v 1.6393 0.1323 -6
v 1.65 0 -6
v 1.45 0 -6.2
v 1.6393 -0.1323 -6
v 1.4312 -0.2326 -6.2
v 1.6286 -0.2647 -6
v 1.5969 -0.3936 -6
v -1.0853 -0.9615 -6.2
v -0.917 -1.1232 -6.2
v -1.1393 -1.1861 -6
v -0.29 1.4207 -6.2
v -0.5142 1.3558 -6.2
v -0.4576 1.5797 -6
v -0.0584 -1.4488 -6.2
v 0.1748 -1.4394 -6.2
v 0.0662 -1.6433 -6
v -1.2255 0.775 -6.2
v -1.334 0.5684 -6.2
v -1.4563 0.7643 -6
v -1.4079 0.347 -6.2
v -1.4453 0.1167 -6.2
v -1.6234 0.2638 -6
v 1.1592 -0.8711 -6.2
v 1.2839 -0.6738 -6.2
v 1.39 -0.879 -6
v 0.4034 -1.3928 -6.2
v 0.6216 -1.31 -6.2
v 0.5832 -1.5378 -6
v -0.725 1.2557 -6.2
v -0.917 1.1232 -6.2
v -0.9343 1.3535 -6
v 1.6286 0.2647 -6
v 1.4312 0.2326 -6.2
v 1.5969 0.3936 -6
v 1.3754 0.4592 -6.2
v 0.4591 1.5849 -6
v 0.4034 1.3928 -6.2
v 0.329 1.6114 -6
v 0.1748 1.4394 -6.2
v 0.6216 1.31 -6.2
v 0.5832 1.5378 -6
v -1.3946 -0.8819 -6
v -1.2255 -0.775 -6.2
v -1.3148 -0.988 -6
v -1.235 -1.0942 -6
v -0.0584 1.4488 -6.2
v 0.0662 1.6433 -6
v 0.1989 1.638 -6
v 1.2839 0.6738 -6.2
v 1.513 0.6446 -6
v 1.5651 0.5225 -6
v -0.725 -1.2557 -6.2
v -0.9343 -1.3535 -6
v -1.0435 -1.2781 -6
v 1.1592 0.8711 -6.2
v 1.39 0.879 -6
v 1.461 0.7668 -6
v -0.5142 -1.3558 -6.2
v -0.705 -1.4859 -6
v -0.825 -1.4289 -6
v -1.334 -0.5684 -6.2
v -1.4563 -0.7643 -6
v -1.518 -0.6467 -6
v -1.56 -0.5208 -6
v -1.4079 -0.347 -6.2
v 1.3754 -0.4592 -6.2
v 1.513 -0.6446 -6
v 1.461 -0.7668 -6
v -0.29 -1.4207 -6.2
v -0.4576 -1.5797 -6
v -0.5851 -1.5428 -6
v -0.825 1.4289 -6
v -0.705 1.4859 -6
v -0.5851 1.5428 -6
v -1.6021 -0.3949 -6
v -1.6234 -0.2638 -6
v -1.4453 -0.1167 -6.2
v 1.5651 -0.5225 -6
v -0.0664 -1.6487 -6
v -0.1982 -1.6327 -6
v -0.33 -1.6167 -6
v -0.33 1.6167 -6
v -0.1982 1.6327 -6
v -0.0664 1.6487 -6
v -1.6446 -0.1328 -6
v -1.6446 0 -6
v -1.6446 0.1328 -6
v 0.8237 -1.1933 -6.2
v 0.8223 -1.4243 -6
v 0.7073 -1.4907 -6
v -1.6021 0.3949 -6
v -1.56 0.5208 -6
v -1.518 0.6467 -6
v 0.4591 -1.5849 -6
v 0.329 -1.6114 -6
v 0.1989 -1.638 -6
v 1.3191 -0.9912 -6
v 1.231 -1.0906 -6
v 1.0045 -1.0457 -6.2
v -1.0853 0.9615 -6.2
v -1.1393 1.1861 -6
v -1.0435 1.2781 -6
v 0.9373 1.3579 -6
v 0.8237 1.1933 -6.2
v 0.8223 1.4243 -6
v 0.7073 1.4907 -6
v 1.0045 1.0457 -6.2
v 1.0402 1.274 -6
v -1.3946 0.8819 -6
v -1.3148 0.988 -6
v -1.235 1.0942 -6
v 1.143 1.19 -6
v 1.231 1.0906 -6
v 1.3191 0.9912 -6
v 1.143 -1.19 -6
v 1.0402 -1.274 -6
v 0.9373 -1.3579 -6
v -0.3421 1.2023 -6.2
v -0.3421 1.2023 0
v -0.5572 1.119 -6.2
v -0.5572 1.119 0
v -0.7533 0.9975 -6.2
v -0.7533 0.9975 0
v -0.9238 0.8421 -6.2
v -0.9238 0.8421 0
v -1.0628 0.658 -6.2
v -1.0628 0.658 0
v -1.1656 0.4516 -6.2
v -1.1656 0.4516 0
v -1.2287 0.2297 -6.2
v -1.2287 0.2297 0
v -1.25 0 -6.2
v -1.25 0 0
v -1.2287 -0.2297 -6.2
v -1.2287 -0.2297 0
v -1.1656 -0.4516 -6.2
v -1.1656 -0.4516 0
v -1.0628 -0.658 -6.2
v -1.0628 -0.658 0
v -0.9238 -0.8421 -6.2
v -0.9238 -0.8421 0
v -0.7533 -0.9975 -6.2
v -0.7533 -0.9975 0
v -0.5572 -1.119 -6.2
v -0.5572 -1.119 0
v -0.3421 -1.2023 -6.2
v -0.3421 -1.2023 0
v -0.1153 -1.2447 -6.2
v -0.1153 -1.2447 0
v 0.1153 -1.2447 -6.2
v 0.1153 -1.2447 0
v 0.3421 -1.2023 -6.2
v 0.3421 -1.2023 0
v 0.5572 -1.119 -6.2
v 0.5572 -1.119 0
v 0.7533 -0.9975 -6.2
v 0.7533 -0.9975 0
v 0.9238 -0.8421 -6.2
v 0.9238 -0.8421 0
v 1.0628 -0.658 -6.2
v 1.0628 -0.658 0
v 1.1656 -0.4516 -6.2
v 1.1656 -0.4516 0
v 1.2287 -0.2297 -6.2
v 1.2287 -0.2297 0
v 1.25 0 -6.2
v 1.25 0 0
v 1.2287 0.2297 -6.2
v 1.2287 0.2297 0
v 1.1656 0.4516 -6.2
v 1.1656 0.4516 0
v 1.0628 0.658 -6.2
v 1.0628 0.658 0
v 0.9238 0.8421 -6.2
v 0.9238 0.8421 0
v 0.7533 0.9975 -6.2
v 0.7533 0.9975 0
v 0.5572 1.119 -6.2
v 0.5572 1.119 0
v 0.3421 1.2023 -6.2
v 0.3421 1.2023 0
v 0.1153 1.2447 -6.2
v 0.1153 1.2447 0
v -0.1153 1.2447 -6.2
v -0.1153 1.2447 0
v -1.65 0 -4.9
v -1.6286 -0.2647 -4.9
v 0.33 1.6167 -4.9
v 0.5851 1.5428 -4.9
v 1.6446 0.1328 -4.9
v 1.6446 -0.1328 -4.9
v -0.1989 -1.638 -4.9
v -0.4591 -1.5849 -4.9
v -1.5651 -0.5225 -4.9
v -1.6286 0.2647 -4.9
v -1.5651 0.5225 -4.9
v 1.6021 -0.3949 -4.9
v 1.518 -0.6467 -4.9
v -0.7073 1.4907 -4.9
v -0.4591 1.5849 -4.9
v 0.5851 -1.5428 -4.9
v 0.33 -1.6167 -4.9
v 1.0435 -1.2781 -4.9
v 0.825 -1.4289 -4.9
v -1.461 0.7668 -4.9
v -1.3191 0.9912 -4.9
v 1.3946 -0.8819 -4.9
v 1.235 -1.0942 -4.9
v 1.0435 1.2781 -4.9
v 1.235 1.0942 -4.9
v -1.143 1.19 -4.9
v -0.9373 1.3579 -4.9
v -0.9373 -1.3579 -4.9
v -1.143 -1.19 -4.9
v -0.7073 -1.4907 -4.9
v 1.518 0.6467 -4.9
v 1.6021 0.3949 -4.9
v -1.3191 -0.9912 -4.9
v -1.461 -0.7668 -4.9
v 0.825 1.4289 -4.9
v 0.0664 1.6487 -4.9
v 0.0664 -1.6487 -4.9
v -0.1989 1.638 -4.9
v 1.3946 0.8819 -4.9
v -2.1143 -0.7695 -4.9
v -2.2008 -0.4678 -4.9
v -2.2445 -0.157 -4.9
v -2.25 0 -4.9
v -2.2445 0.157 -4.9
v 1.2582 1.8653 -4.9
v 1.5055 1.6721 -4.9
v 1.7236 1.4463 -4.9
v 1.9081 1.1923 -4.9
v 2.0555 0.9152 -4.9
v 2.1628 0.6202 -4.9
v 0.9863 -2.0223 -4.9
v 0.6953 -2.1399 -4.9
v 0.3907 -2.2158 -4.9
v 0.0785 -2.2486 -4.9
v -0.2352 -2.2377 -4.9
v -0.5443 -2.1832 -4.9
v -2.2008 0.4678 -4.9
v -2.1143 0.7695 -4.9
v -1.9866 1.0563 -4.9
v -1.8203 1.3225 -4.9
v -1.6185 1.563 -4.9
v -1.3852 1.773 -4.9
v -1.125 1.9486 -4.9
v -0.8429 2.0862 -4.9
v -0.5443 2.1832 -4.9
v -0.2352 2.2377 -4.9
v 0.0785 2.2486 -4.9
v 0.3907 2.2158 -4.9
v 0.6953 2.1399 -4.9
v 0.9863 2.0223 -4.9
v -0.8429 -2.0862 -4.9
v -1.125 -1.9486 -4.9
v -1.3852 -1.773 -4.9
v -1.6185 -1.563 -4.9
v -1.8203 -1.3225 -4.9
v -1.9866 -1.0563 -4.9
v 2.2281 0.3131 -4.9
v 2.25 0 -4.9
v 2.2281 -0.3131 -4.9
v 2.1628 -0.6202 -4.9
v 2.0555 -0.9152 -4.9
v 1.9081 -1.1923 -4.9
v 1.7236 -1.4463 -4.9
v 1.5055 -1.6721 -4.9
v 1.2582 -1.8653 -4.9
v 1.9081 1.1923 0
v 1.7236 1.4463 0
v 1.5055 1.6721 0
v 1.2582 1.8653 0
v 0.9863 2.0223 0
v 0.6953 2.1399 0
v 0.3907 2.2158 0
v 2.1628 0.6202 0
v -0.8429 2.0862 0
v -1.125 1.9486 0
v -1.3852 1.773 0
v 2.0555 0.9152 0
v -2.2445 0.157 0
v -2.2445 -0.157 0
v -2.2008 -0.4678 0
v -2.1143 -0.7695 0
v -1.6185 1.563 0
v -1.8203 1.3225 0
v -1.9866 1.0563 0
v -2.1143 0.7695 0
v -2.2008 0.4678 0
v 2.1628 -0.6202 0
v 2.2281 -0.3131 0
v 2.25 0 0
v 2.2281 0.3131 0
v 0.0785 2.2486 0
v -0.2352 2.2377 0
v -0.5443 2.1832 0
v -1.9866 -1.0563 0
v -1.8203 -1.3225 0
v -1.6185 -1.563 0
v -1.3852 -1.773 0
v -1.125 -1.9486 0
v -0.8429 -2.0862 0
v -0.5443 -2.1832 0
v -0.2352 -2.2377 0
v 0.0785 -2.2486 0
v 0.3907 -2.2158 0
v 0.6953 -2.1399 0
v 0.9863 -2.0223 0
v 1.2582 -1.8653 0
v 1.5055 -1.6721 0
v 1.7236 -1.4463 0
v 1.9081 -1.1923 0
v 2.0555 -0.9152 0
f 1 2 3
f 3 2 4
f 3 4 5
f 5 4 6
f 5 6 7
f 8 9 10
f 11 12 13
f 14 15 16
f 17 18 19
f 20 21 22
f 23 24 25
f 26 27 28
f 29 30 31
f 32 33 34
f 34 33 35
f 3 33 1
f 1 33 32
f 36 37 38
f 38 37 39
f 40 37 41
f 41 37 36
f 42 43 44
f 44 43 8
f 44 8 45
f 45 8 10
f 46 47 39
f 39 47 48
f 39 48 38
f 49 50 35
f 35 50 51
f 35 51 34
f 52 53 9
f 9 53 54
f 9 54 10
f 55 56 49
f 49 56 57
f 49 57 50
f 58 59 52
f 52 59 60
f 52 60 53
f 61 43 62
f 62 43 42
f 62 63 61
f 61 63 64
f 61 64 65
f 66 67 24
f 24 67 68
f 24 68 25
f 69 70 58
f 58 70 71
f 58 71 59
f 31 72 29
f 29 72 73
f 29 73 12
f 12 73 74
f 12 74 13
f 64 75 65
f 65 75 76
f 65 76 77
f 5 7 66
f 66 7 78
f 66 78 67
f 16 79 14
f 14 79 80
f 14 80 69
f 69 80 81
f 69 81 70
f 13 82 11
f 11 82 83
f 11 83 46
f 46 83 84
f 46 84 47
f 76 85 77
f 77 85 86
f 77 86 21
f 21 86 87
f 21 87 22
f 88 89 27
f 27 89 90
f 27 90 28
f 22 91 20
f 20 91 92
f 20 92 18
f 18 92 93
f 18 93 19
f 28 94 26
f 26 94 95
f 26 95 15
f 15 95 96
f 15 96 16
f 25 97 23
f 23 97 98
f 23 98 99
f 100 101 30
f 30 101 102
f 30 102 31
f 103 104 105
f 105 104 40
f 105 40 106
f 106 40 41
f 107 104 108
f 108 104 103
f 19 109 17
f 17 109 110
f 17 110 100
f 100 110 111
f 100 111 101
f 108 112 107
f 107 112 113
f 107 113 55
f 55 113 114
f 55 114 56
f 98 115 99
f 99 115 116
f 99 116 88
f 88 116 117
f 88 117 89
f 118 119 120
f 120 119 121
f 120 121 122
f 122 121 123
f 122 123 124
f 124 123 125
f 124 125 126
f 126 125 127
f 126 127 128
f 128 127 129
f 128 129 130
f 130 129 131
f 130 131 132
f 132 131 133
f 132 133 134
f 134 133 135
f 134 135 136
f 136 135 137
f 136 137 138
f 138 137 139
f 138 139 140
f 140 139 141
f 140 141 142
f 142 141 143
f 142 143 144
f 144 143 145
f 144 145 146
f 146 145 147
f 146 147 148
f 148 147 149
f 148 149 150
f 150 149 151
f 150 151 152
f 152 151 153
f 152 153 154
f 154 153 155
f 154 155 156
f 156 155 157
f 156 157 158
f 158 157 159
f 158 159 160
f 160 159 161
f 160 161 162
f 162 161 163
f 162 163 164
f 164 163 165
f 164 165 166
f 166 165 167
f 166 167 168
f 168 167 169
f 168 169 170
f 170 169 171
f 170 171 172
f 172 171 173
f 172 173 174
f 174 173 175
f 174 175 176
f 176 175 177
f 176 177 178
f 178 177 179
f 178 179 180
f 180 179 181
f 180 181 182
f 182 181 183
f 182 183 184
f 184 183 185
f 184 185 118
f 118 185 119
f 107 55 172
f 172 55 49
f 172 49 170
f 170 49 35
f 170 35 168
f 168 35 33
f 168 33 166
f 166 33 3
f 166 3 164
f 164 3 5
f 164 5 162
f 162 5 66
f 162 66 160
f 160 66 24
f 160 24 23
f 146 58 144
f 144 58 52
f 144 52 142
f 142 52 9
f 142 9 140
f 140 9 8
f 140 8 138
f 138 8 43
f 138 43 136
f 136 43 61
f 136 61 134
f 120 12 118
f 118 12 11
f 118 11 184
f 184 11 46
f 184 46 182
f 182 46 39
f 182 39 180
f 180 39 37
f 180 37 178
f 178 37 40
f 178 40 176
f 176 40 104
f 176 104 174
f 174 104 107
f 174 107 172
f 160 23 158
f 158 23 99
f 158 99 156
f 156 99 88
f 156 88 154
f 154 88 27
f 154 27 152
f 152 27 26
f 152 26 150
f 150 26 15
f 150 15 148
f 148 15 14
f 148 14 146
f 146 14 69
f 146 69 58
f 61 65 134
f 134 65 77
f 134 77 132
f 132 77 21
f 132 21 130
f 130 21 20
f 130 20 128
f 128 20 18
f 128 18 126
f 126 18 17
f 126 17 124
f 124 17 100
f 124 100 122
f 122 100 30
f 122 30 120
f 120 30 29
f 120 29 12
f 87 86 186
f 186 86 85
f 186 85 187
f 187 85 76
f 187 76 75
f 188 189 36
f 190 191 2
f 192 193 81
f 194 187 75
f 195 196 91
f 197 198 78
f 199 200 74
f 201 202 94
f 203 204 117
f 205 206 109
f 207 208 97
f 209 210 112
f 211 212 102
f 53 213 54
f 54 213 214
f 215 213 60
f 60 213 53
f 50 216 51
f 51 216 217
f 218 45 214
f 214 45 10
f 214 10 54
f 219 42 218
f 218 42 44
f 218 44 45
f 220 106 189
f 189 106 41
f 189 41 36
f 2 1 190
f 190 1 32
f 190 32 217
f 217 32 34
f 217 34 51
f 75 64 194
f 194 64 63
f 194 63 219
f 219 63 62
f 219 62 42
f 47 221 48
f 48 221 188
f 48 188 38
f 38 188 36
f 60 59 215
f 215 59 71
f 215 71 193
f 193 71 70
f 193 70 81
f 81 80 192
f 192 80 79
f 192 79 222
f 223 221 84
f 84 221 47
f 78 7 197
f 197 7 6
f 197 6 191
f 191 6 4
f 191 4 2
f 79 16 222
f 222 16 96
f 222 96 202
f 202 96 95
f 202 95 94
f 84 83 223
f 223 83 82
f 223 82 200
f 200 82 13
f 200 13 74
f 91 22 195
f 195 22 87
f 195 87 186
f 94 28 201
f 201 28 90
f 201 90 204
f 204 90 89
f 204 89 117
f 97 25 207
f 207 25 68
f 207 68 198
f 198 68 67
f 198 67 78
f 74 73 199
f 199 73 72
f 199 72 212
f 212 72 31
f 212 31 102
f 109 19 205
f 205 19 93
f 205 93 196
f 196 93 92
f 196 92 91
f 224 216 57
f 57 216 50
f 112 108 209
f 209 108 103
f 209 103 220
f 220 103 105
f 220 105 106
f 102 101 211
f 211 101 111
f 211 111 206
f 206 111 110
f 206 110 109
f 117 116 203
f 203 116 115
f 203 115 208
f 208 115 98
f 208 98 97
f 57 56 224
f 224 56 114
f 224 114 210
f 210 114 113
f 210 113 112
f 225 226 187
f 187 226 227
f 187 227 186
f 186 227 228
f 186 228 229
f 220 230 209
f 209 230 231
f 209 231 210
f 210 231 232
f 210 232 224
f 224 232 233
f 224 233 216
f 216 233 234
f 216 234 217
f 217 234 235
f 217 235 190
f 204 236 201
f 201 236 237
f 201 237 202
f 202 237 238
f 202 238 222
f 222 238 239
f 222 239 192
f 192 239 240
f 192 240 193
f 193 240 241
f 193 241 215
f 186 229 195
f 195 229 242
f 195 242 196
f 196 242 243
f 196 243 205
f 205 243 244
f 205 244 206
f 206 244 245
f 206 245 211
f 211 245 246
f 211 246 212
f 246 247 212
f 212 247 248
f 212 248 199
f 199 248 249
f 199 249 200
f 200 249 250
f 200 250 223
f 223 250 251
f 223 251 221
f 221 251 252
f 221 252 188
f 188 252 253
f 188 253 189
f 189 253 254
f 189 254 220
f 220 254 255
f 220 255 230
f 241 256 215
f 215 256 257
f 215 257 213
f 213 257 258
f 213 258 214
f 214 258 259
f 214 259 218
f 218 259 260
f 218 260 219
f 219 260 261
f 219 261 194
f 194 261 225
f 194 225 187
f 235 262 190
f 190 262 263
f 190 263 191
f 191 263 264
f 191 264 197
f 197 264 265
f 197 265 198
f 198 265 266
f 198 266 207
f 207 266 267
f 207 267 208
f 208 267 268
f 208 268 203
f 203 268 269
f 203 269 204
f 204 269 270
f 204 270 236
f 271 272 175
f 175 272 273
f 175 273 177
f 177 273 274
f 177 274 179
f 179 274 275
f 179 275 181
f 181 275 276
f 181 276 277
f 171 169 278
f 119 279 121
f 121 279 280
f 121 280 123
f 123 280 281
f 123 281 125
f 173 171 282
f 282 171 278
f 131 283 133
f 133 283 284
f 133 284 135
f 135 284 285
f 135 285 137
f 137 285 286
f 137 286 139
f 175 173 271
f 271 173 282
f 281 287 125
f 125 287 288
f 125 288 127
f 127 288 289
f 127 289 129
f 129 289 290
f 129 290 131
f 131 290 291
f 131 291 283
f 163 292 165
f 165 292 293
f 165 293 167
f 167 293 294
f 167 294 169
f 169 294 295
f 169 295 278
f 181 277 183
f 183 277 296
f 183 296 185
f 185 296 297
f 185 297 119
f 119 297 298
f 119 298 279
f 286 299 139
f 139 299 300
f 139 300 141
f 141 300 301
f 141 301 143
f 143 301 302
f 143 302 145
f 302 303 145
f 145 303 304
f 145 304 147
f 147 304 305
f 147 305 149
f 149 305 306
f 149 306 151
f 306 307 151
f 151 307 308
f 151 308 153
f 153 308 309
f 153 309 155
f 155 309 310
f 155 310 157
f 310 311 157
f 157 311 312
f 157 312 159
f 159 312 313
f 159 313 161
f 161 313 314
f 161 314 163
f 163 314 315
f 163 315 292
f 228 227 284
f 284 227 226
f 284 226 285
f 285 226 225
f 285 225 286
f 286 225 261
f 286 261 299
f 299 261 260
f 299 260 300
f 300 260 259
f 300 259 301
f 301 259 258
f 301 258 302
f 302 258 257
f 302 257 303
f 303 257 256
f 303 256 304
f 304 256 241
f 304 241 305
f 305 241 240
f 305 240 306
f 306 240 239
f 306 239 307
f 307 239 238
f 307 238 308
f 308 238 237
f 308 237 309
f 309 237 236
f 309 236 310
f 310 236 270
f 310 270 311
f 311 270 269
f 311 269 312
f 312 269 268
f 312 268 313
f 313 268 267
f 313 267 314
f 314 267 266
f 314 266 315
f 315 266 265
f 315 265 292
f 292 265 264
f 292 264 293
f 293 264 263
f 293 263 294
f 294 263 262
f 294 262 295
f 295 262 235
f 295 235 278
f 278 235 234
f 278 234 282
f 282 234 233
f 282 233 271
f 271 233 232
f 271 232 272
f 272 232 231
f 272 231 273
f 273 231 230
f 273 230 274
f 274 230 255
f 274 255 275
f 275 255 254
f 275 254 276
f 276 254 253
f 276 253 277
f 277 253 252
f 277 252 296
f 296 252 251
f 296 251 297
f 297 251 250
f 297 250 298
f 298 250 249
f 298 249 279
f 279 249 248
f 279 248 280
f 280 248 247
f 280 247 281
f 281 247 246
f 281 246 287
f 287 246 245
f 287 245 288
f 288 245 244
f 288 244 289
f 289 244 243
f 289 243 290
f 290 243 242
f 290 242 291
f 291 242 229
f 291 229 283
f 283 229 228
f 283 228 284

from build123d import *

# Parameters (mm, degrees)
SKETCH1_R           = 2.25
BOSS_EXTRUDE1_DEPTH = 6.2
SKETCH2_OUTSIDE_W   = 8.276
SKETCH2_OUTSIDE_H   = 8.276
SKETCH2_OUTSIDE_R   = 1.65
CUT_EXTRUDE1_DEPTH  = 1.3
SKETCH3_R           = 1.25
CUT_EXTRUDE2_DEPTH  = 7.2
CHAMFER1_SIZE       = 0.2


with BuildPart() as part:
    # Sketch1 → Boss-Extrude1 (new body)
    with BuildSketch(Plane.XY):
        Circle(SKETCH1_R)
    extrude(amount=-BOSS_EXTRUDE1_DEPTH)

    # Sketch2 outside → Cut-Extrude1 (cut)
    with BuildSketch(Plane(origin=(0, 0, -6.2), x_dir=(-1, 0, 0), z_dir=(0, 0, -1))):
        Rectangle(SKETCH2_OUTSIDE_W, SKETCH2_OUTSIDE_H)
        Circle(SKETCH2_OUTSIDE_R, mode=Mode.SUBTRACT)
    extrude(amount=-CUT_EXTRUDE1_DEPTH, mode=Mode.SUBTRACT)

    # Sketch3 → Cut-Extrude2 (cut, through all)
    with BuildSketch(Plane.XY):
        Circle(SKETCH3_R)
    extrude(amount=-CUT_EXTRUDE2_DEPTH, mode=Mode.SUBTRACT)

    # Chamfer1
    chamfer1_edges = [part.edges().sort_by_distance(p)[0] for p in [
        (1.65, 0, -6.2),
    ]]
    chamfer(chamfer1_edges, length=CHAMFER1_SIZE)


solid = part.part
